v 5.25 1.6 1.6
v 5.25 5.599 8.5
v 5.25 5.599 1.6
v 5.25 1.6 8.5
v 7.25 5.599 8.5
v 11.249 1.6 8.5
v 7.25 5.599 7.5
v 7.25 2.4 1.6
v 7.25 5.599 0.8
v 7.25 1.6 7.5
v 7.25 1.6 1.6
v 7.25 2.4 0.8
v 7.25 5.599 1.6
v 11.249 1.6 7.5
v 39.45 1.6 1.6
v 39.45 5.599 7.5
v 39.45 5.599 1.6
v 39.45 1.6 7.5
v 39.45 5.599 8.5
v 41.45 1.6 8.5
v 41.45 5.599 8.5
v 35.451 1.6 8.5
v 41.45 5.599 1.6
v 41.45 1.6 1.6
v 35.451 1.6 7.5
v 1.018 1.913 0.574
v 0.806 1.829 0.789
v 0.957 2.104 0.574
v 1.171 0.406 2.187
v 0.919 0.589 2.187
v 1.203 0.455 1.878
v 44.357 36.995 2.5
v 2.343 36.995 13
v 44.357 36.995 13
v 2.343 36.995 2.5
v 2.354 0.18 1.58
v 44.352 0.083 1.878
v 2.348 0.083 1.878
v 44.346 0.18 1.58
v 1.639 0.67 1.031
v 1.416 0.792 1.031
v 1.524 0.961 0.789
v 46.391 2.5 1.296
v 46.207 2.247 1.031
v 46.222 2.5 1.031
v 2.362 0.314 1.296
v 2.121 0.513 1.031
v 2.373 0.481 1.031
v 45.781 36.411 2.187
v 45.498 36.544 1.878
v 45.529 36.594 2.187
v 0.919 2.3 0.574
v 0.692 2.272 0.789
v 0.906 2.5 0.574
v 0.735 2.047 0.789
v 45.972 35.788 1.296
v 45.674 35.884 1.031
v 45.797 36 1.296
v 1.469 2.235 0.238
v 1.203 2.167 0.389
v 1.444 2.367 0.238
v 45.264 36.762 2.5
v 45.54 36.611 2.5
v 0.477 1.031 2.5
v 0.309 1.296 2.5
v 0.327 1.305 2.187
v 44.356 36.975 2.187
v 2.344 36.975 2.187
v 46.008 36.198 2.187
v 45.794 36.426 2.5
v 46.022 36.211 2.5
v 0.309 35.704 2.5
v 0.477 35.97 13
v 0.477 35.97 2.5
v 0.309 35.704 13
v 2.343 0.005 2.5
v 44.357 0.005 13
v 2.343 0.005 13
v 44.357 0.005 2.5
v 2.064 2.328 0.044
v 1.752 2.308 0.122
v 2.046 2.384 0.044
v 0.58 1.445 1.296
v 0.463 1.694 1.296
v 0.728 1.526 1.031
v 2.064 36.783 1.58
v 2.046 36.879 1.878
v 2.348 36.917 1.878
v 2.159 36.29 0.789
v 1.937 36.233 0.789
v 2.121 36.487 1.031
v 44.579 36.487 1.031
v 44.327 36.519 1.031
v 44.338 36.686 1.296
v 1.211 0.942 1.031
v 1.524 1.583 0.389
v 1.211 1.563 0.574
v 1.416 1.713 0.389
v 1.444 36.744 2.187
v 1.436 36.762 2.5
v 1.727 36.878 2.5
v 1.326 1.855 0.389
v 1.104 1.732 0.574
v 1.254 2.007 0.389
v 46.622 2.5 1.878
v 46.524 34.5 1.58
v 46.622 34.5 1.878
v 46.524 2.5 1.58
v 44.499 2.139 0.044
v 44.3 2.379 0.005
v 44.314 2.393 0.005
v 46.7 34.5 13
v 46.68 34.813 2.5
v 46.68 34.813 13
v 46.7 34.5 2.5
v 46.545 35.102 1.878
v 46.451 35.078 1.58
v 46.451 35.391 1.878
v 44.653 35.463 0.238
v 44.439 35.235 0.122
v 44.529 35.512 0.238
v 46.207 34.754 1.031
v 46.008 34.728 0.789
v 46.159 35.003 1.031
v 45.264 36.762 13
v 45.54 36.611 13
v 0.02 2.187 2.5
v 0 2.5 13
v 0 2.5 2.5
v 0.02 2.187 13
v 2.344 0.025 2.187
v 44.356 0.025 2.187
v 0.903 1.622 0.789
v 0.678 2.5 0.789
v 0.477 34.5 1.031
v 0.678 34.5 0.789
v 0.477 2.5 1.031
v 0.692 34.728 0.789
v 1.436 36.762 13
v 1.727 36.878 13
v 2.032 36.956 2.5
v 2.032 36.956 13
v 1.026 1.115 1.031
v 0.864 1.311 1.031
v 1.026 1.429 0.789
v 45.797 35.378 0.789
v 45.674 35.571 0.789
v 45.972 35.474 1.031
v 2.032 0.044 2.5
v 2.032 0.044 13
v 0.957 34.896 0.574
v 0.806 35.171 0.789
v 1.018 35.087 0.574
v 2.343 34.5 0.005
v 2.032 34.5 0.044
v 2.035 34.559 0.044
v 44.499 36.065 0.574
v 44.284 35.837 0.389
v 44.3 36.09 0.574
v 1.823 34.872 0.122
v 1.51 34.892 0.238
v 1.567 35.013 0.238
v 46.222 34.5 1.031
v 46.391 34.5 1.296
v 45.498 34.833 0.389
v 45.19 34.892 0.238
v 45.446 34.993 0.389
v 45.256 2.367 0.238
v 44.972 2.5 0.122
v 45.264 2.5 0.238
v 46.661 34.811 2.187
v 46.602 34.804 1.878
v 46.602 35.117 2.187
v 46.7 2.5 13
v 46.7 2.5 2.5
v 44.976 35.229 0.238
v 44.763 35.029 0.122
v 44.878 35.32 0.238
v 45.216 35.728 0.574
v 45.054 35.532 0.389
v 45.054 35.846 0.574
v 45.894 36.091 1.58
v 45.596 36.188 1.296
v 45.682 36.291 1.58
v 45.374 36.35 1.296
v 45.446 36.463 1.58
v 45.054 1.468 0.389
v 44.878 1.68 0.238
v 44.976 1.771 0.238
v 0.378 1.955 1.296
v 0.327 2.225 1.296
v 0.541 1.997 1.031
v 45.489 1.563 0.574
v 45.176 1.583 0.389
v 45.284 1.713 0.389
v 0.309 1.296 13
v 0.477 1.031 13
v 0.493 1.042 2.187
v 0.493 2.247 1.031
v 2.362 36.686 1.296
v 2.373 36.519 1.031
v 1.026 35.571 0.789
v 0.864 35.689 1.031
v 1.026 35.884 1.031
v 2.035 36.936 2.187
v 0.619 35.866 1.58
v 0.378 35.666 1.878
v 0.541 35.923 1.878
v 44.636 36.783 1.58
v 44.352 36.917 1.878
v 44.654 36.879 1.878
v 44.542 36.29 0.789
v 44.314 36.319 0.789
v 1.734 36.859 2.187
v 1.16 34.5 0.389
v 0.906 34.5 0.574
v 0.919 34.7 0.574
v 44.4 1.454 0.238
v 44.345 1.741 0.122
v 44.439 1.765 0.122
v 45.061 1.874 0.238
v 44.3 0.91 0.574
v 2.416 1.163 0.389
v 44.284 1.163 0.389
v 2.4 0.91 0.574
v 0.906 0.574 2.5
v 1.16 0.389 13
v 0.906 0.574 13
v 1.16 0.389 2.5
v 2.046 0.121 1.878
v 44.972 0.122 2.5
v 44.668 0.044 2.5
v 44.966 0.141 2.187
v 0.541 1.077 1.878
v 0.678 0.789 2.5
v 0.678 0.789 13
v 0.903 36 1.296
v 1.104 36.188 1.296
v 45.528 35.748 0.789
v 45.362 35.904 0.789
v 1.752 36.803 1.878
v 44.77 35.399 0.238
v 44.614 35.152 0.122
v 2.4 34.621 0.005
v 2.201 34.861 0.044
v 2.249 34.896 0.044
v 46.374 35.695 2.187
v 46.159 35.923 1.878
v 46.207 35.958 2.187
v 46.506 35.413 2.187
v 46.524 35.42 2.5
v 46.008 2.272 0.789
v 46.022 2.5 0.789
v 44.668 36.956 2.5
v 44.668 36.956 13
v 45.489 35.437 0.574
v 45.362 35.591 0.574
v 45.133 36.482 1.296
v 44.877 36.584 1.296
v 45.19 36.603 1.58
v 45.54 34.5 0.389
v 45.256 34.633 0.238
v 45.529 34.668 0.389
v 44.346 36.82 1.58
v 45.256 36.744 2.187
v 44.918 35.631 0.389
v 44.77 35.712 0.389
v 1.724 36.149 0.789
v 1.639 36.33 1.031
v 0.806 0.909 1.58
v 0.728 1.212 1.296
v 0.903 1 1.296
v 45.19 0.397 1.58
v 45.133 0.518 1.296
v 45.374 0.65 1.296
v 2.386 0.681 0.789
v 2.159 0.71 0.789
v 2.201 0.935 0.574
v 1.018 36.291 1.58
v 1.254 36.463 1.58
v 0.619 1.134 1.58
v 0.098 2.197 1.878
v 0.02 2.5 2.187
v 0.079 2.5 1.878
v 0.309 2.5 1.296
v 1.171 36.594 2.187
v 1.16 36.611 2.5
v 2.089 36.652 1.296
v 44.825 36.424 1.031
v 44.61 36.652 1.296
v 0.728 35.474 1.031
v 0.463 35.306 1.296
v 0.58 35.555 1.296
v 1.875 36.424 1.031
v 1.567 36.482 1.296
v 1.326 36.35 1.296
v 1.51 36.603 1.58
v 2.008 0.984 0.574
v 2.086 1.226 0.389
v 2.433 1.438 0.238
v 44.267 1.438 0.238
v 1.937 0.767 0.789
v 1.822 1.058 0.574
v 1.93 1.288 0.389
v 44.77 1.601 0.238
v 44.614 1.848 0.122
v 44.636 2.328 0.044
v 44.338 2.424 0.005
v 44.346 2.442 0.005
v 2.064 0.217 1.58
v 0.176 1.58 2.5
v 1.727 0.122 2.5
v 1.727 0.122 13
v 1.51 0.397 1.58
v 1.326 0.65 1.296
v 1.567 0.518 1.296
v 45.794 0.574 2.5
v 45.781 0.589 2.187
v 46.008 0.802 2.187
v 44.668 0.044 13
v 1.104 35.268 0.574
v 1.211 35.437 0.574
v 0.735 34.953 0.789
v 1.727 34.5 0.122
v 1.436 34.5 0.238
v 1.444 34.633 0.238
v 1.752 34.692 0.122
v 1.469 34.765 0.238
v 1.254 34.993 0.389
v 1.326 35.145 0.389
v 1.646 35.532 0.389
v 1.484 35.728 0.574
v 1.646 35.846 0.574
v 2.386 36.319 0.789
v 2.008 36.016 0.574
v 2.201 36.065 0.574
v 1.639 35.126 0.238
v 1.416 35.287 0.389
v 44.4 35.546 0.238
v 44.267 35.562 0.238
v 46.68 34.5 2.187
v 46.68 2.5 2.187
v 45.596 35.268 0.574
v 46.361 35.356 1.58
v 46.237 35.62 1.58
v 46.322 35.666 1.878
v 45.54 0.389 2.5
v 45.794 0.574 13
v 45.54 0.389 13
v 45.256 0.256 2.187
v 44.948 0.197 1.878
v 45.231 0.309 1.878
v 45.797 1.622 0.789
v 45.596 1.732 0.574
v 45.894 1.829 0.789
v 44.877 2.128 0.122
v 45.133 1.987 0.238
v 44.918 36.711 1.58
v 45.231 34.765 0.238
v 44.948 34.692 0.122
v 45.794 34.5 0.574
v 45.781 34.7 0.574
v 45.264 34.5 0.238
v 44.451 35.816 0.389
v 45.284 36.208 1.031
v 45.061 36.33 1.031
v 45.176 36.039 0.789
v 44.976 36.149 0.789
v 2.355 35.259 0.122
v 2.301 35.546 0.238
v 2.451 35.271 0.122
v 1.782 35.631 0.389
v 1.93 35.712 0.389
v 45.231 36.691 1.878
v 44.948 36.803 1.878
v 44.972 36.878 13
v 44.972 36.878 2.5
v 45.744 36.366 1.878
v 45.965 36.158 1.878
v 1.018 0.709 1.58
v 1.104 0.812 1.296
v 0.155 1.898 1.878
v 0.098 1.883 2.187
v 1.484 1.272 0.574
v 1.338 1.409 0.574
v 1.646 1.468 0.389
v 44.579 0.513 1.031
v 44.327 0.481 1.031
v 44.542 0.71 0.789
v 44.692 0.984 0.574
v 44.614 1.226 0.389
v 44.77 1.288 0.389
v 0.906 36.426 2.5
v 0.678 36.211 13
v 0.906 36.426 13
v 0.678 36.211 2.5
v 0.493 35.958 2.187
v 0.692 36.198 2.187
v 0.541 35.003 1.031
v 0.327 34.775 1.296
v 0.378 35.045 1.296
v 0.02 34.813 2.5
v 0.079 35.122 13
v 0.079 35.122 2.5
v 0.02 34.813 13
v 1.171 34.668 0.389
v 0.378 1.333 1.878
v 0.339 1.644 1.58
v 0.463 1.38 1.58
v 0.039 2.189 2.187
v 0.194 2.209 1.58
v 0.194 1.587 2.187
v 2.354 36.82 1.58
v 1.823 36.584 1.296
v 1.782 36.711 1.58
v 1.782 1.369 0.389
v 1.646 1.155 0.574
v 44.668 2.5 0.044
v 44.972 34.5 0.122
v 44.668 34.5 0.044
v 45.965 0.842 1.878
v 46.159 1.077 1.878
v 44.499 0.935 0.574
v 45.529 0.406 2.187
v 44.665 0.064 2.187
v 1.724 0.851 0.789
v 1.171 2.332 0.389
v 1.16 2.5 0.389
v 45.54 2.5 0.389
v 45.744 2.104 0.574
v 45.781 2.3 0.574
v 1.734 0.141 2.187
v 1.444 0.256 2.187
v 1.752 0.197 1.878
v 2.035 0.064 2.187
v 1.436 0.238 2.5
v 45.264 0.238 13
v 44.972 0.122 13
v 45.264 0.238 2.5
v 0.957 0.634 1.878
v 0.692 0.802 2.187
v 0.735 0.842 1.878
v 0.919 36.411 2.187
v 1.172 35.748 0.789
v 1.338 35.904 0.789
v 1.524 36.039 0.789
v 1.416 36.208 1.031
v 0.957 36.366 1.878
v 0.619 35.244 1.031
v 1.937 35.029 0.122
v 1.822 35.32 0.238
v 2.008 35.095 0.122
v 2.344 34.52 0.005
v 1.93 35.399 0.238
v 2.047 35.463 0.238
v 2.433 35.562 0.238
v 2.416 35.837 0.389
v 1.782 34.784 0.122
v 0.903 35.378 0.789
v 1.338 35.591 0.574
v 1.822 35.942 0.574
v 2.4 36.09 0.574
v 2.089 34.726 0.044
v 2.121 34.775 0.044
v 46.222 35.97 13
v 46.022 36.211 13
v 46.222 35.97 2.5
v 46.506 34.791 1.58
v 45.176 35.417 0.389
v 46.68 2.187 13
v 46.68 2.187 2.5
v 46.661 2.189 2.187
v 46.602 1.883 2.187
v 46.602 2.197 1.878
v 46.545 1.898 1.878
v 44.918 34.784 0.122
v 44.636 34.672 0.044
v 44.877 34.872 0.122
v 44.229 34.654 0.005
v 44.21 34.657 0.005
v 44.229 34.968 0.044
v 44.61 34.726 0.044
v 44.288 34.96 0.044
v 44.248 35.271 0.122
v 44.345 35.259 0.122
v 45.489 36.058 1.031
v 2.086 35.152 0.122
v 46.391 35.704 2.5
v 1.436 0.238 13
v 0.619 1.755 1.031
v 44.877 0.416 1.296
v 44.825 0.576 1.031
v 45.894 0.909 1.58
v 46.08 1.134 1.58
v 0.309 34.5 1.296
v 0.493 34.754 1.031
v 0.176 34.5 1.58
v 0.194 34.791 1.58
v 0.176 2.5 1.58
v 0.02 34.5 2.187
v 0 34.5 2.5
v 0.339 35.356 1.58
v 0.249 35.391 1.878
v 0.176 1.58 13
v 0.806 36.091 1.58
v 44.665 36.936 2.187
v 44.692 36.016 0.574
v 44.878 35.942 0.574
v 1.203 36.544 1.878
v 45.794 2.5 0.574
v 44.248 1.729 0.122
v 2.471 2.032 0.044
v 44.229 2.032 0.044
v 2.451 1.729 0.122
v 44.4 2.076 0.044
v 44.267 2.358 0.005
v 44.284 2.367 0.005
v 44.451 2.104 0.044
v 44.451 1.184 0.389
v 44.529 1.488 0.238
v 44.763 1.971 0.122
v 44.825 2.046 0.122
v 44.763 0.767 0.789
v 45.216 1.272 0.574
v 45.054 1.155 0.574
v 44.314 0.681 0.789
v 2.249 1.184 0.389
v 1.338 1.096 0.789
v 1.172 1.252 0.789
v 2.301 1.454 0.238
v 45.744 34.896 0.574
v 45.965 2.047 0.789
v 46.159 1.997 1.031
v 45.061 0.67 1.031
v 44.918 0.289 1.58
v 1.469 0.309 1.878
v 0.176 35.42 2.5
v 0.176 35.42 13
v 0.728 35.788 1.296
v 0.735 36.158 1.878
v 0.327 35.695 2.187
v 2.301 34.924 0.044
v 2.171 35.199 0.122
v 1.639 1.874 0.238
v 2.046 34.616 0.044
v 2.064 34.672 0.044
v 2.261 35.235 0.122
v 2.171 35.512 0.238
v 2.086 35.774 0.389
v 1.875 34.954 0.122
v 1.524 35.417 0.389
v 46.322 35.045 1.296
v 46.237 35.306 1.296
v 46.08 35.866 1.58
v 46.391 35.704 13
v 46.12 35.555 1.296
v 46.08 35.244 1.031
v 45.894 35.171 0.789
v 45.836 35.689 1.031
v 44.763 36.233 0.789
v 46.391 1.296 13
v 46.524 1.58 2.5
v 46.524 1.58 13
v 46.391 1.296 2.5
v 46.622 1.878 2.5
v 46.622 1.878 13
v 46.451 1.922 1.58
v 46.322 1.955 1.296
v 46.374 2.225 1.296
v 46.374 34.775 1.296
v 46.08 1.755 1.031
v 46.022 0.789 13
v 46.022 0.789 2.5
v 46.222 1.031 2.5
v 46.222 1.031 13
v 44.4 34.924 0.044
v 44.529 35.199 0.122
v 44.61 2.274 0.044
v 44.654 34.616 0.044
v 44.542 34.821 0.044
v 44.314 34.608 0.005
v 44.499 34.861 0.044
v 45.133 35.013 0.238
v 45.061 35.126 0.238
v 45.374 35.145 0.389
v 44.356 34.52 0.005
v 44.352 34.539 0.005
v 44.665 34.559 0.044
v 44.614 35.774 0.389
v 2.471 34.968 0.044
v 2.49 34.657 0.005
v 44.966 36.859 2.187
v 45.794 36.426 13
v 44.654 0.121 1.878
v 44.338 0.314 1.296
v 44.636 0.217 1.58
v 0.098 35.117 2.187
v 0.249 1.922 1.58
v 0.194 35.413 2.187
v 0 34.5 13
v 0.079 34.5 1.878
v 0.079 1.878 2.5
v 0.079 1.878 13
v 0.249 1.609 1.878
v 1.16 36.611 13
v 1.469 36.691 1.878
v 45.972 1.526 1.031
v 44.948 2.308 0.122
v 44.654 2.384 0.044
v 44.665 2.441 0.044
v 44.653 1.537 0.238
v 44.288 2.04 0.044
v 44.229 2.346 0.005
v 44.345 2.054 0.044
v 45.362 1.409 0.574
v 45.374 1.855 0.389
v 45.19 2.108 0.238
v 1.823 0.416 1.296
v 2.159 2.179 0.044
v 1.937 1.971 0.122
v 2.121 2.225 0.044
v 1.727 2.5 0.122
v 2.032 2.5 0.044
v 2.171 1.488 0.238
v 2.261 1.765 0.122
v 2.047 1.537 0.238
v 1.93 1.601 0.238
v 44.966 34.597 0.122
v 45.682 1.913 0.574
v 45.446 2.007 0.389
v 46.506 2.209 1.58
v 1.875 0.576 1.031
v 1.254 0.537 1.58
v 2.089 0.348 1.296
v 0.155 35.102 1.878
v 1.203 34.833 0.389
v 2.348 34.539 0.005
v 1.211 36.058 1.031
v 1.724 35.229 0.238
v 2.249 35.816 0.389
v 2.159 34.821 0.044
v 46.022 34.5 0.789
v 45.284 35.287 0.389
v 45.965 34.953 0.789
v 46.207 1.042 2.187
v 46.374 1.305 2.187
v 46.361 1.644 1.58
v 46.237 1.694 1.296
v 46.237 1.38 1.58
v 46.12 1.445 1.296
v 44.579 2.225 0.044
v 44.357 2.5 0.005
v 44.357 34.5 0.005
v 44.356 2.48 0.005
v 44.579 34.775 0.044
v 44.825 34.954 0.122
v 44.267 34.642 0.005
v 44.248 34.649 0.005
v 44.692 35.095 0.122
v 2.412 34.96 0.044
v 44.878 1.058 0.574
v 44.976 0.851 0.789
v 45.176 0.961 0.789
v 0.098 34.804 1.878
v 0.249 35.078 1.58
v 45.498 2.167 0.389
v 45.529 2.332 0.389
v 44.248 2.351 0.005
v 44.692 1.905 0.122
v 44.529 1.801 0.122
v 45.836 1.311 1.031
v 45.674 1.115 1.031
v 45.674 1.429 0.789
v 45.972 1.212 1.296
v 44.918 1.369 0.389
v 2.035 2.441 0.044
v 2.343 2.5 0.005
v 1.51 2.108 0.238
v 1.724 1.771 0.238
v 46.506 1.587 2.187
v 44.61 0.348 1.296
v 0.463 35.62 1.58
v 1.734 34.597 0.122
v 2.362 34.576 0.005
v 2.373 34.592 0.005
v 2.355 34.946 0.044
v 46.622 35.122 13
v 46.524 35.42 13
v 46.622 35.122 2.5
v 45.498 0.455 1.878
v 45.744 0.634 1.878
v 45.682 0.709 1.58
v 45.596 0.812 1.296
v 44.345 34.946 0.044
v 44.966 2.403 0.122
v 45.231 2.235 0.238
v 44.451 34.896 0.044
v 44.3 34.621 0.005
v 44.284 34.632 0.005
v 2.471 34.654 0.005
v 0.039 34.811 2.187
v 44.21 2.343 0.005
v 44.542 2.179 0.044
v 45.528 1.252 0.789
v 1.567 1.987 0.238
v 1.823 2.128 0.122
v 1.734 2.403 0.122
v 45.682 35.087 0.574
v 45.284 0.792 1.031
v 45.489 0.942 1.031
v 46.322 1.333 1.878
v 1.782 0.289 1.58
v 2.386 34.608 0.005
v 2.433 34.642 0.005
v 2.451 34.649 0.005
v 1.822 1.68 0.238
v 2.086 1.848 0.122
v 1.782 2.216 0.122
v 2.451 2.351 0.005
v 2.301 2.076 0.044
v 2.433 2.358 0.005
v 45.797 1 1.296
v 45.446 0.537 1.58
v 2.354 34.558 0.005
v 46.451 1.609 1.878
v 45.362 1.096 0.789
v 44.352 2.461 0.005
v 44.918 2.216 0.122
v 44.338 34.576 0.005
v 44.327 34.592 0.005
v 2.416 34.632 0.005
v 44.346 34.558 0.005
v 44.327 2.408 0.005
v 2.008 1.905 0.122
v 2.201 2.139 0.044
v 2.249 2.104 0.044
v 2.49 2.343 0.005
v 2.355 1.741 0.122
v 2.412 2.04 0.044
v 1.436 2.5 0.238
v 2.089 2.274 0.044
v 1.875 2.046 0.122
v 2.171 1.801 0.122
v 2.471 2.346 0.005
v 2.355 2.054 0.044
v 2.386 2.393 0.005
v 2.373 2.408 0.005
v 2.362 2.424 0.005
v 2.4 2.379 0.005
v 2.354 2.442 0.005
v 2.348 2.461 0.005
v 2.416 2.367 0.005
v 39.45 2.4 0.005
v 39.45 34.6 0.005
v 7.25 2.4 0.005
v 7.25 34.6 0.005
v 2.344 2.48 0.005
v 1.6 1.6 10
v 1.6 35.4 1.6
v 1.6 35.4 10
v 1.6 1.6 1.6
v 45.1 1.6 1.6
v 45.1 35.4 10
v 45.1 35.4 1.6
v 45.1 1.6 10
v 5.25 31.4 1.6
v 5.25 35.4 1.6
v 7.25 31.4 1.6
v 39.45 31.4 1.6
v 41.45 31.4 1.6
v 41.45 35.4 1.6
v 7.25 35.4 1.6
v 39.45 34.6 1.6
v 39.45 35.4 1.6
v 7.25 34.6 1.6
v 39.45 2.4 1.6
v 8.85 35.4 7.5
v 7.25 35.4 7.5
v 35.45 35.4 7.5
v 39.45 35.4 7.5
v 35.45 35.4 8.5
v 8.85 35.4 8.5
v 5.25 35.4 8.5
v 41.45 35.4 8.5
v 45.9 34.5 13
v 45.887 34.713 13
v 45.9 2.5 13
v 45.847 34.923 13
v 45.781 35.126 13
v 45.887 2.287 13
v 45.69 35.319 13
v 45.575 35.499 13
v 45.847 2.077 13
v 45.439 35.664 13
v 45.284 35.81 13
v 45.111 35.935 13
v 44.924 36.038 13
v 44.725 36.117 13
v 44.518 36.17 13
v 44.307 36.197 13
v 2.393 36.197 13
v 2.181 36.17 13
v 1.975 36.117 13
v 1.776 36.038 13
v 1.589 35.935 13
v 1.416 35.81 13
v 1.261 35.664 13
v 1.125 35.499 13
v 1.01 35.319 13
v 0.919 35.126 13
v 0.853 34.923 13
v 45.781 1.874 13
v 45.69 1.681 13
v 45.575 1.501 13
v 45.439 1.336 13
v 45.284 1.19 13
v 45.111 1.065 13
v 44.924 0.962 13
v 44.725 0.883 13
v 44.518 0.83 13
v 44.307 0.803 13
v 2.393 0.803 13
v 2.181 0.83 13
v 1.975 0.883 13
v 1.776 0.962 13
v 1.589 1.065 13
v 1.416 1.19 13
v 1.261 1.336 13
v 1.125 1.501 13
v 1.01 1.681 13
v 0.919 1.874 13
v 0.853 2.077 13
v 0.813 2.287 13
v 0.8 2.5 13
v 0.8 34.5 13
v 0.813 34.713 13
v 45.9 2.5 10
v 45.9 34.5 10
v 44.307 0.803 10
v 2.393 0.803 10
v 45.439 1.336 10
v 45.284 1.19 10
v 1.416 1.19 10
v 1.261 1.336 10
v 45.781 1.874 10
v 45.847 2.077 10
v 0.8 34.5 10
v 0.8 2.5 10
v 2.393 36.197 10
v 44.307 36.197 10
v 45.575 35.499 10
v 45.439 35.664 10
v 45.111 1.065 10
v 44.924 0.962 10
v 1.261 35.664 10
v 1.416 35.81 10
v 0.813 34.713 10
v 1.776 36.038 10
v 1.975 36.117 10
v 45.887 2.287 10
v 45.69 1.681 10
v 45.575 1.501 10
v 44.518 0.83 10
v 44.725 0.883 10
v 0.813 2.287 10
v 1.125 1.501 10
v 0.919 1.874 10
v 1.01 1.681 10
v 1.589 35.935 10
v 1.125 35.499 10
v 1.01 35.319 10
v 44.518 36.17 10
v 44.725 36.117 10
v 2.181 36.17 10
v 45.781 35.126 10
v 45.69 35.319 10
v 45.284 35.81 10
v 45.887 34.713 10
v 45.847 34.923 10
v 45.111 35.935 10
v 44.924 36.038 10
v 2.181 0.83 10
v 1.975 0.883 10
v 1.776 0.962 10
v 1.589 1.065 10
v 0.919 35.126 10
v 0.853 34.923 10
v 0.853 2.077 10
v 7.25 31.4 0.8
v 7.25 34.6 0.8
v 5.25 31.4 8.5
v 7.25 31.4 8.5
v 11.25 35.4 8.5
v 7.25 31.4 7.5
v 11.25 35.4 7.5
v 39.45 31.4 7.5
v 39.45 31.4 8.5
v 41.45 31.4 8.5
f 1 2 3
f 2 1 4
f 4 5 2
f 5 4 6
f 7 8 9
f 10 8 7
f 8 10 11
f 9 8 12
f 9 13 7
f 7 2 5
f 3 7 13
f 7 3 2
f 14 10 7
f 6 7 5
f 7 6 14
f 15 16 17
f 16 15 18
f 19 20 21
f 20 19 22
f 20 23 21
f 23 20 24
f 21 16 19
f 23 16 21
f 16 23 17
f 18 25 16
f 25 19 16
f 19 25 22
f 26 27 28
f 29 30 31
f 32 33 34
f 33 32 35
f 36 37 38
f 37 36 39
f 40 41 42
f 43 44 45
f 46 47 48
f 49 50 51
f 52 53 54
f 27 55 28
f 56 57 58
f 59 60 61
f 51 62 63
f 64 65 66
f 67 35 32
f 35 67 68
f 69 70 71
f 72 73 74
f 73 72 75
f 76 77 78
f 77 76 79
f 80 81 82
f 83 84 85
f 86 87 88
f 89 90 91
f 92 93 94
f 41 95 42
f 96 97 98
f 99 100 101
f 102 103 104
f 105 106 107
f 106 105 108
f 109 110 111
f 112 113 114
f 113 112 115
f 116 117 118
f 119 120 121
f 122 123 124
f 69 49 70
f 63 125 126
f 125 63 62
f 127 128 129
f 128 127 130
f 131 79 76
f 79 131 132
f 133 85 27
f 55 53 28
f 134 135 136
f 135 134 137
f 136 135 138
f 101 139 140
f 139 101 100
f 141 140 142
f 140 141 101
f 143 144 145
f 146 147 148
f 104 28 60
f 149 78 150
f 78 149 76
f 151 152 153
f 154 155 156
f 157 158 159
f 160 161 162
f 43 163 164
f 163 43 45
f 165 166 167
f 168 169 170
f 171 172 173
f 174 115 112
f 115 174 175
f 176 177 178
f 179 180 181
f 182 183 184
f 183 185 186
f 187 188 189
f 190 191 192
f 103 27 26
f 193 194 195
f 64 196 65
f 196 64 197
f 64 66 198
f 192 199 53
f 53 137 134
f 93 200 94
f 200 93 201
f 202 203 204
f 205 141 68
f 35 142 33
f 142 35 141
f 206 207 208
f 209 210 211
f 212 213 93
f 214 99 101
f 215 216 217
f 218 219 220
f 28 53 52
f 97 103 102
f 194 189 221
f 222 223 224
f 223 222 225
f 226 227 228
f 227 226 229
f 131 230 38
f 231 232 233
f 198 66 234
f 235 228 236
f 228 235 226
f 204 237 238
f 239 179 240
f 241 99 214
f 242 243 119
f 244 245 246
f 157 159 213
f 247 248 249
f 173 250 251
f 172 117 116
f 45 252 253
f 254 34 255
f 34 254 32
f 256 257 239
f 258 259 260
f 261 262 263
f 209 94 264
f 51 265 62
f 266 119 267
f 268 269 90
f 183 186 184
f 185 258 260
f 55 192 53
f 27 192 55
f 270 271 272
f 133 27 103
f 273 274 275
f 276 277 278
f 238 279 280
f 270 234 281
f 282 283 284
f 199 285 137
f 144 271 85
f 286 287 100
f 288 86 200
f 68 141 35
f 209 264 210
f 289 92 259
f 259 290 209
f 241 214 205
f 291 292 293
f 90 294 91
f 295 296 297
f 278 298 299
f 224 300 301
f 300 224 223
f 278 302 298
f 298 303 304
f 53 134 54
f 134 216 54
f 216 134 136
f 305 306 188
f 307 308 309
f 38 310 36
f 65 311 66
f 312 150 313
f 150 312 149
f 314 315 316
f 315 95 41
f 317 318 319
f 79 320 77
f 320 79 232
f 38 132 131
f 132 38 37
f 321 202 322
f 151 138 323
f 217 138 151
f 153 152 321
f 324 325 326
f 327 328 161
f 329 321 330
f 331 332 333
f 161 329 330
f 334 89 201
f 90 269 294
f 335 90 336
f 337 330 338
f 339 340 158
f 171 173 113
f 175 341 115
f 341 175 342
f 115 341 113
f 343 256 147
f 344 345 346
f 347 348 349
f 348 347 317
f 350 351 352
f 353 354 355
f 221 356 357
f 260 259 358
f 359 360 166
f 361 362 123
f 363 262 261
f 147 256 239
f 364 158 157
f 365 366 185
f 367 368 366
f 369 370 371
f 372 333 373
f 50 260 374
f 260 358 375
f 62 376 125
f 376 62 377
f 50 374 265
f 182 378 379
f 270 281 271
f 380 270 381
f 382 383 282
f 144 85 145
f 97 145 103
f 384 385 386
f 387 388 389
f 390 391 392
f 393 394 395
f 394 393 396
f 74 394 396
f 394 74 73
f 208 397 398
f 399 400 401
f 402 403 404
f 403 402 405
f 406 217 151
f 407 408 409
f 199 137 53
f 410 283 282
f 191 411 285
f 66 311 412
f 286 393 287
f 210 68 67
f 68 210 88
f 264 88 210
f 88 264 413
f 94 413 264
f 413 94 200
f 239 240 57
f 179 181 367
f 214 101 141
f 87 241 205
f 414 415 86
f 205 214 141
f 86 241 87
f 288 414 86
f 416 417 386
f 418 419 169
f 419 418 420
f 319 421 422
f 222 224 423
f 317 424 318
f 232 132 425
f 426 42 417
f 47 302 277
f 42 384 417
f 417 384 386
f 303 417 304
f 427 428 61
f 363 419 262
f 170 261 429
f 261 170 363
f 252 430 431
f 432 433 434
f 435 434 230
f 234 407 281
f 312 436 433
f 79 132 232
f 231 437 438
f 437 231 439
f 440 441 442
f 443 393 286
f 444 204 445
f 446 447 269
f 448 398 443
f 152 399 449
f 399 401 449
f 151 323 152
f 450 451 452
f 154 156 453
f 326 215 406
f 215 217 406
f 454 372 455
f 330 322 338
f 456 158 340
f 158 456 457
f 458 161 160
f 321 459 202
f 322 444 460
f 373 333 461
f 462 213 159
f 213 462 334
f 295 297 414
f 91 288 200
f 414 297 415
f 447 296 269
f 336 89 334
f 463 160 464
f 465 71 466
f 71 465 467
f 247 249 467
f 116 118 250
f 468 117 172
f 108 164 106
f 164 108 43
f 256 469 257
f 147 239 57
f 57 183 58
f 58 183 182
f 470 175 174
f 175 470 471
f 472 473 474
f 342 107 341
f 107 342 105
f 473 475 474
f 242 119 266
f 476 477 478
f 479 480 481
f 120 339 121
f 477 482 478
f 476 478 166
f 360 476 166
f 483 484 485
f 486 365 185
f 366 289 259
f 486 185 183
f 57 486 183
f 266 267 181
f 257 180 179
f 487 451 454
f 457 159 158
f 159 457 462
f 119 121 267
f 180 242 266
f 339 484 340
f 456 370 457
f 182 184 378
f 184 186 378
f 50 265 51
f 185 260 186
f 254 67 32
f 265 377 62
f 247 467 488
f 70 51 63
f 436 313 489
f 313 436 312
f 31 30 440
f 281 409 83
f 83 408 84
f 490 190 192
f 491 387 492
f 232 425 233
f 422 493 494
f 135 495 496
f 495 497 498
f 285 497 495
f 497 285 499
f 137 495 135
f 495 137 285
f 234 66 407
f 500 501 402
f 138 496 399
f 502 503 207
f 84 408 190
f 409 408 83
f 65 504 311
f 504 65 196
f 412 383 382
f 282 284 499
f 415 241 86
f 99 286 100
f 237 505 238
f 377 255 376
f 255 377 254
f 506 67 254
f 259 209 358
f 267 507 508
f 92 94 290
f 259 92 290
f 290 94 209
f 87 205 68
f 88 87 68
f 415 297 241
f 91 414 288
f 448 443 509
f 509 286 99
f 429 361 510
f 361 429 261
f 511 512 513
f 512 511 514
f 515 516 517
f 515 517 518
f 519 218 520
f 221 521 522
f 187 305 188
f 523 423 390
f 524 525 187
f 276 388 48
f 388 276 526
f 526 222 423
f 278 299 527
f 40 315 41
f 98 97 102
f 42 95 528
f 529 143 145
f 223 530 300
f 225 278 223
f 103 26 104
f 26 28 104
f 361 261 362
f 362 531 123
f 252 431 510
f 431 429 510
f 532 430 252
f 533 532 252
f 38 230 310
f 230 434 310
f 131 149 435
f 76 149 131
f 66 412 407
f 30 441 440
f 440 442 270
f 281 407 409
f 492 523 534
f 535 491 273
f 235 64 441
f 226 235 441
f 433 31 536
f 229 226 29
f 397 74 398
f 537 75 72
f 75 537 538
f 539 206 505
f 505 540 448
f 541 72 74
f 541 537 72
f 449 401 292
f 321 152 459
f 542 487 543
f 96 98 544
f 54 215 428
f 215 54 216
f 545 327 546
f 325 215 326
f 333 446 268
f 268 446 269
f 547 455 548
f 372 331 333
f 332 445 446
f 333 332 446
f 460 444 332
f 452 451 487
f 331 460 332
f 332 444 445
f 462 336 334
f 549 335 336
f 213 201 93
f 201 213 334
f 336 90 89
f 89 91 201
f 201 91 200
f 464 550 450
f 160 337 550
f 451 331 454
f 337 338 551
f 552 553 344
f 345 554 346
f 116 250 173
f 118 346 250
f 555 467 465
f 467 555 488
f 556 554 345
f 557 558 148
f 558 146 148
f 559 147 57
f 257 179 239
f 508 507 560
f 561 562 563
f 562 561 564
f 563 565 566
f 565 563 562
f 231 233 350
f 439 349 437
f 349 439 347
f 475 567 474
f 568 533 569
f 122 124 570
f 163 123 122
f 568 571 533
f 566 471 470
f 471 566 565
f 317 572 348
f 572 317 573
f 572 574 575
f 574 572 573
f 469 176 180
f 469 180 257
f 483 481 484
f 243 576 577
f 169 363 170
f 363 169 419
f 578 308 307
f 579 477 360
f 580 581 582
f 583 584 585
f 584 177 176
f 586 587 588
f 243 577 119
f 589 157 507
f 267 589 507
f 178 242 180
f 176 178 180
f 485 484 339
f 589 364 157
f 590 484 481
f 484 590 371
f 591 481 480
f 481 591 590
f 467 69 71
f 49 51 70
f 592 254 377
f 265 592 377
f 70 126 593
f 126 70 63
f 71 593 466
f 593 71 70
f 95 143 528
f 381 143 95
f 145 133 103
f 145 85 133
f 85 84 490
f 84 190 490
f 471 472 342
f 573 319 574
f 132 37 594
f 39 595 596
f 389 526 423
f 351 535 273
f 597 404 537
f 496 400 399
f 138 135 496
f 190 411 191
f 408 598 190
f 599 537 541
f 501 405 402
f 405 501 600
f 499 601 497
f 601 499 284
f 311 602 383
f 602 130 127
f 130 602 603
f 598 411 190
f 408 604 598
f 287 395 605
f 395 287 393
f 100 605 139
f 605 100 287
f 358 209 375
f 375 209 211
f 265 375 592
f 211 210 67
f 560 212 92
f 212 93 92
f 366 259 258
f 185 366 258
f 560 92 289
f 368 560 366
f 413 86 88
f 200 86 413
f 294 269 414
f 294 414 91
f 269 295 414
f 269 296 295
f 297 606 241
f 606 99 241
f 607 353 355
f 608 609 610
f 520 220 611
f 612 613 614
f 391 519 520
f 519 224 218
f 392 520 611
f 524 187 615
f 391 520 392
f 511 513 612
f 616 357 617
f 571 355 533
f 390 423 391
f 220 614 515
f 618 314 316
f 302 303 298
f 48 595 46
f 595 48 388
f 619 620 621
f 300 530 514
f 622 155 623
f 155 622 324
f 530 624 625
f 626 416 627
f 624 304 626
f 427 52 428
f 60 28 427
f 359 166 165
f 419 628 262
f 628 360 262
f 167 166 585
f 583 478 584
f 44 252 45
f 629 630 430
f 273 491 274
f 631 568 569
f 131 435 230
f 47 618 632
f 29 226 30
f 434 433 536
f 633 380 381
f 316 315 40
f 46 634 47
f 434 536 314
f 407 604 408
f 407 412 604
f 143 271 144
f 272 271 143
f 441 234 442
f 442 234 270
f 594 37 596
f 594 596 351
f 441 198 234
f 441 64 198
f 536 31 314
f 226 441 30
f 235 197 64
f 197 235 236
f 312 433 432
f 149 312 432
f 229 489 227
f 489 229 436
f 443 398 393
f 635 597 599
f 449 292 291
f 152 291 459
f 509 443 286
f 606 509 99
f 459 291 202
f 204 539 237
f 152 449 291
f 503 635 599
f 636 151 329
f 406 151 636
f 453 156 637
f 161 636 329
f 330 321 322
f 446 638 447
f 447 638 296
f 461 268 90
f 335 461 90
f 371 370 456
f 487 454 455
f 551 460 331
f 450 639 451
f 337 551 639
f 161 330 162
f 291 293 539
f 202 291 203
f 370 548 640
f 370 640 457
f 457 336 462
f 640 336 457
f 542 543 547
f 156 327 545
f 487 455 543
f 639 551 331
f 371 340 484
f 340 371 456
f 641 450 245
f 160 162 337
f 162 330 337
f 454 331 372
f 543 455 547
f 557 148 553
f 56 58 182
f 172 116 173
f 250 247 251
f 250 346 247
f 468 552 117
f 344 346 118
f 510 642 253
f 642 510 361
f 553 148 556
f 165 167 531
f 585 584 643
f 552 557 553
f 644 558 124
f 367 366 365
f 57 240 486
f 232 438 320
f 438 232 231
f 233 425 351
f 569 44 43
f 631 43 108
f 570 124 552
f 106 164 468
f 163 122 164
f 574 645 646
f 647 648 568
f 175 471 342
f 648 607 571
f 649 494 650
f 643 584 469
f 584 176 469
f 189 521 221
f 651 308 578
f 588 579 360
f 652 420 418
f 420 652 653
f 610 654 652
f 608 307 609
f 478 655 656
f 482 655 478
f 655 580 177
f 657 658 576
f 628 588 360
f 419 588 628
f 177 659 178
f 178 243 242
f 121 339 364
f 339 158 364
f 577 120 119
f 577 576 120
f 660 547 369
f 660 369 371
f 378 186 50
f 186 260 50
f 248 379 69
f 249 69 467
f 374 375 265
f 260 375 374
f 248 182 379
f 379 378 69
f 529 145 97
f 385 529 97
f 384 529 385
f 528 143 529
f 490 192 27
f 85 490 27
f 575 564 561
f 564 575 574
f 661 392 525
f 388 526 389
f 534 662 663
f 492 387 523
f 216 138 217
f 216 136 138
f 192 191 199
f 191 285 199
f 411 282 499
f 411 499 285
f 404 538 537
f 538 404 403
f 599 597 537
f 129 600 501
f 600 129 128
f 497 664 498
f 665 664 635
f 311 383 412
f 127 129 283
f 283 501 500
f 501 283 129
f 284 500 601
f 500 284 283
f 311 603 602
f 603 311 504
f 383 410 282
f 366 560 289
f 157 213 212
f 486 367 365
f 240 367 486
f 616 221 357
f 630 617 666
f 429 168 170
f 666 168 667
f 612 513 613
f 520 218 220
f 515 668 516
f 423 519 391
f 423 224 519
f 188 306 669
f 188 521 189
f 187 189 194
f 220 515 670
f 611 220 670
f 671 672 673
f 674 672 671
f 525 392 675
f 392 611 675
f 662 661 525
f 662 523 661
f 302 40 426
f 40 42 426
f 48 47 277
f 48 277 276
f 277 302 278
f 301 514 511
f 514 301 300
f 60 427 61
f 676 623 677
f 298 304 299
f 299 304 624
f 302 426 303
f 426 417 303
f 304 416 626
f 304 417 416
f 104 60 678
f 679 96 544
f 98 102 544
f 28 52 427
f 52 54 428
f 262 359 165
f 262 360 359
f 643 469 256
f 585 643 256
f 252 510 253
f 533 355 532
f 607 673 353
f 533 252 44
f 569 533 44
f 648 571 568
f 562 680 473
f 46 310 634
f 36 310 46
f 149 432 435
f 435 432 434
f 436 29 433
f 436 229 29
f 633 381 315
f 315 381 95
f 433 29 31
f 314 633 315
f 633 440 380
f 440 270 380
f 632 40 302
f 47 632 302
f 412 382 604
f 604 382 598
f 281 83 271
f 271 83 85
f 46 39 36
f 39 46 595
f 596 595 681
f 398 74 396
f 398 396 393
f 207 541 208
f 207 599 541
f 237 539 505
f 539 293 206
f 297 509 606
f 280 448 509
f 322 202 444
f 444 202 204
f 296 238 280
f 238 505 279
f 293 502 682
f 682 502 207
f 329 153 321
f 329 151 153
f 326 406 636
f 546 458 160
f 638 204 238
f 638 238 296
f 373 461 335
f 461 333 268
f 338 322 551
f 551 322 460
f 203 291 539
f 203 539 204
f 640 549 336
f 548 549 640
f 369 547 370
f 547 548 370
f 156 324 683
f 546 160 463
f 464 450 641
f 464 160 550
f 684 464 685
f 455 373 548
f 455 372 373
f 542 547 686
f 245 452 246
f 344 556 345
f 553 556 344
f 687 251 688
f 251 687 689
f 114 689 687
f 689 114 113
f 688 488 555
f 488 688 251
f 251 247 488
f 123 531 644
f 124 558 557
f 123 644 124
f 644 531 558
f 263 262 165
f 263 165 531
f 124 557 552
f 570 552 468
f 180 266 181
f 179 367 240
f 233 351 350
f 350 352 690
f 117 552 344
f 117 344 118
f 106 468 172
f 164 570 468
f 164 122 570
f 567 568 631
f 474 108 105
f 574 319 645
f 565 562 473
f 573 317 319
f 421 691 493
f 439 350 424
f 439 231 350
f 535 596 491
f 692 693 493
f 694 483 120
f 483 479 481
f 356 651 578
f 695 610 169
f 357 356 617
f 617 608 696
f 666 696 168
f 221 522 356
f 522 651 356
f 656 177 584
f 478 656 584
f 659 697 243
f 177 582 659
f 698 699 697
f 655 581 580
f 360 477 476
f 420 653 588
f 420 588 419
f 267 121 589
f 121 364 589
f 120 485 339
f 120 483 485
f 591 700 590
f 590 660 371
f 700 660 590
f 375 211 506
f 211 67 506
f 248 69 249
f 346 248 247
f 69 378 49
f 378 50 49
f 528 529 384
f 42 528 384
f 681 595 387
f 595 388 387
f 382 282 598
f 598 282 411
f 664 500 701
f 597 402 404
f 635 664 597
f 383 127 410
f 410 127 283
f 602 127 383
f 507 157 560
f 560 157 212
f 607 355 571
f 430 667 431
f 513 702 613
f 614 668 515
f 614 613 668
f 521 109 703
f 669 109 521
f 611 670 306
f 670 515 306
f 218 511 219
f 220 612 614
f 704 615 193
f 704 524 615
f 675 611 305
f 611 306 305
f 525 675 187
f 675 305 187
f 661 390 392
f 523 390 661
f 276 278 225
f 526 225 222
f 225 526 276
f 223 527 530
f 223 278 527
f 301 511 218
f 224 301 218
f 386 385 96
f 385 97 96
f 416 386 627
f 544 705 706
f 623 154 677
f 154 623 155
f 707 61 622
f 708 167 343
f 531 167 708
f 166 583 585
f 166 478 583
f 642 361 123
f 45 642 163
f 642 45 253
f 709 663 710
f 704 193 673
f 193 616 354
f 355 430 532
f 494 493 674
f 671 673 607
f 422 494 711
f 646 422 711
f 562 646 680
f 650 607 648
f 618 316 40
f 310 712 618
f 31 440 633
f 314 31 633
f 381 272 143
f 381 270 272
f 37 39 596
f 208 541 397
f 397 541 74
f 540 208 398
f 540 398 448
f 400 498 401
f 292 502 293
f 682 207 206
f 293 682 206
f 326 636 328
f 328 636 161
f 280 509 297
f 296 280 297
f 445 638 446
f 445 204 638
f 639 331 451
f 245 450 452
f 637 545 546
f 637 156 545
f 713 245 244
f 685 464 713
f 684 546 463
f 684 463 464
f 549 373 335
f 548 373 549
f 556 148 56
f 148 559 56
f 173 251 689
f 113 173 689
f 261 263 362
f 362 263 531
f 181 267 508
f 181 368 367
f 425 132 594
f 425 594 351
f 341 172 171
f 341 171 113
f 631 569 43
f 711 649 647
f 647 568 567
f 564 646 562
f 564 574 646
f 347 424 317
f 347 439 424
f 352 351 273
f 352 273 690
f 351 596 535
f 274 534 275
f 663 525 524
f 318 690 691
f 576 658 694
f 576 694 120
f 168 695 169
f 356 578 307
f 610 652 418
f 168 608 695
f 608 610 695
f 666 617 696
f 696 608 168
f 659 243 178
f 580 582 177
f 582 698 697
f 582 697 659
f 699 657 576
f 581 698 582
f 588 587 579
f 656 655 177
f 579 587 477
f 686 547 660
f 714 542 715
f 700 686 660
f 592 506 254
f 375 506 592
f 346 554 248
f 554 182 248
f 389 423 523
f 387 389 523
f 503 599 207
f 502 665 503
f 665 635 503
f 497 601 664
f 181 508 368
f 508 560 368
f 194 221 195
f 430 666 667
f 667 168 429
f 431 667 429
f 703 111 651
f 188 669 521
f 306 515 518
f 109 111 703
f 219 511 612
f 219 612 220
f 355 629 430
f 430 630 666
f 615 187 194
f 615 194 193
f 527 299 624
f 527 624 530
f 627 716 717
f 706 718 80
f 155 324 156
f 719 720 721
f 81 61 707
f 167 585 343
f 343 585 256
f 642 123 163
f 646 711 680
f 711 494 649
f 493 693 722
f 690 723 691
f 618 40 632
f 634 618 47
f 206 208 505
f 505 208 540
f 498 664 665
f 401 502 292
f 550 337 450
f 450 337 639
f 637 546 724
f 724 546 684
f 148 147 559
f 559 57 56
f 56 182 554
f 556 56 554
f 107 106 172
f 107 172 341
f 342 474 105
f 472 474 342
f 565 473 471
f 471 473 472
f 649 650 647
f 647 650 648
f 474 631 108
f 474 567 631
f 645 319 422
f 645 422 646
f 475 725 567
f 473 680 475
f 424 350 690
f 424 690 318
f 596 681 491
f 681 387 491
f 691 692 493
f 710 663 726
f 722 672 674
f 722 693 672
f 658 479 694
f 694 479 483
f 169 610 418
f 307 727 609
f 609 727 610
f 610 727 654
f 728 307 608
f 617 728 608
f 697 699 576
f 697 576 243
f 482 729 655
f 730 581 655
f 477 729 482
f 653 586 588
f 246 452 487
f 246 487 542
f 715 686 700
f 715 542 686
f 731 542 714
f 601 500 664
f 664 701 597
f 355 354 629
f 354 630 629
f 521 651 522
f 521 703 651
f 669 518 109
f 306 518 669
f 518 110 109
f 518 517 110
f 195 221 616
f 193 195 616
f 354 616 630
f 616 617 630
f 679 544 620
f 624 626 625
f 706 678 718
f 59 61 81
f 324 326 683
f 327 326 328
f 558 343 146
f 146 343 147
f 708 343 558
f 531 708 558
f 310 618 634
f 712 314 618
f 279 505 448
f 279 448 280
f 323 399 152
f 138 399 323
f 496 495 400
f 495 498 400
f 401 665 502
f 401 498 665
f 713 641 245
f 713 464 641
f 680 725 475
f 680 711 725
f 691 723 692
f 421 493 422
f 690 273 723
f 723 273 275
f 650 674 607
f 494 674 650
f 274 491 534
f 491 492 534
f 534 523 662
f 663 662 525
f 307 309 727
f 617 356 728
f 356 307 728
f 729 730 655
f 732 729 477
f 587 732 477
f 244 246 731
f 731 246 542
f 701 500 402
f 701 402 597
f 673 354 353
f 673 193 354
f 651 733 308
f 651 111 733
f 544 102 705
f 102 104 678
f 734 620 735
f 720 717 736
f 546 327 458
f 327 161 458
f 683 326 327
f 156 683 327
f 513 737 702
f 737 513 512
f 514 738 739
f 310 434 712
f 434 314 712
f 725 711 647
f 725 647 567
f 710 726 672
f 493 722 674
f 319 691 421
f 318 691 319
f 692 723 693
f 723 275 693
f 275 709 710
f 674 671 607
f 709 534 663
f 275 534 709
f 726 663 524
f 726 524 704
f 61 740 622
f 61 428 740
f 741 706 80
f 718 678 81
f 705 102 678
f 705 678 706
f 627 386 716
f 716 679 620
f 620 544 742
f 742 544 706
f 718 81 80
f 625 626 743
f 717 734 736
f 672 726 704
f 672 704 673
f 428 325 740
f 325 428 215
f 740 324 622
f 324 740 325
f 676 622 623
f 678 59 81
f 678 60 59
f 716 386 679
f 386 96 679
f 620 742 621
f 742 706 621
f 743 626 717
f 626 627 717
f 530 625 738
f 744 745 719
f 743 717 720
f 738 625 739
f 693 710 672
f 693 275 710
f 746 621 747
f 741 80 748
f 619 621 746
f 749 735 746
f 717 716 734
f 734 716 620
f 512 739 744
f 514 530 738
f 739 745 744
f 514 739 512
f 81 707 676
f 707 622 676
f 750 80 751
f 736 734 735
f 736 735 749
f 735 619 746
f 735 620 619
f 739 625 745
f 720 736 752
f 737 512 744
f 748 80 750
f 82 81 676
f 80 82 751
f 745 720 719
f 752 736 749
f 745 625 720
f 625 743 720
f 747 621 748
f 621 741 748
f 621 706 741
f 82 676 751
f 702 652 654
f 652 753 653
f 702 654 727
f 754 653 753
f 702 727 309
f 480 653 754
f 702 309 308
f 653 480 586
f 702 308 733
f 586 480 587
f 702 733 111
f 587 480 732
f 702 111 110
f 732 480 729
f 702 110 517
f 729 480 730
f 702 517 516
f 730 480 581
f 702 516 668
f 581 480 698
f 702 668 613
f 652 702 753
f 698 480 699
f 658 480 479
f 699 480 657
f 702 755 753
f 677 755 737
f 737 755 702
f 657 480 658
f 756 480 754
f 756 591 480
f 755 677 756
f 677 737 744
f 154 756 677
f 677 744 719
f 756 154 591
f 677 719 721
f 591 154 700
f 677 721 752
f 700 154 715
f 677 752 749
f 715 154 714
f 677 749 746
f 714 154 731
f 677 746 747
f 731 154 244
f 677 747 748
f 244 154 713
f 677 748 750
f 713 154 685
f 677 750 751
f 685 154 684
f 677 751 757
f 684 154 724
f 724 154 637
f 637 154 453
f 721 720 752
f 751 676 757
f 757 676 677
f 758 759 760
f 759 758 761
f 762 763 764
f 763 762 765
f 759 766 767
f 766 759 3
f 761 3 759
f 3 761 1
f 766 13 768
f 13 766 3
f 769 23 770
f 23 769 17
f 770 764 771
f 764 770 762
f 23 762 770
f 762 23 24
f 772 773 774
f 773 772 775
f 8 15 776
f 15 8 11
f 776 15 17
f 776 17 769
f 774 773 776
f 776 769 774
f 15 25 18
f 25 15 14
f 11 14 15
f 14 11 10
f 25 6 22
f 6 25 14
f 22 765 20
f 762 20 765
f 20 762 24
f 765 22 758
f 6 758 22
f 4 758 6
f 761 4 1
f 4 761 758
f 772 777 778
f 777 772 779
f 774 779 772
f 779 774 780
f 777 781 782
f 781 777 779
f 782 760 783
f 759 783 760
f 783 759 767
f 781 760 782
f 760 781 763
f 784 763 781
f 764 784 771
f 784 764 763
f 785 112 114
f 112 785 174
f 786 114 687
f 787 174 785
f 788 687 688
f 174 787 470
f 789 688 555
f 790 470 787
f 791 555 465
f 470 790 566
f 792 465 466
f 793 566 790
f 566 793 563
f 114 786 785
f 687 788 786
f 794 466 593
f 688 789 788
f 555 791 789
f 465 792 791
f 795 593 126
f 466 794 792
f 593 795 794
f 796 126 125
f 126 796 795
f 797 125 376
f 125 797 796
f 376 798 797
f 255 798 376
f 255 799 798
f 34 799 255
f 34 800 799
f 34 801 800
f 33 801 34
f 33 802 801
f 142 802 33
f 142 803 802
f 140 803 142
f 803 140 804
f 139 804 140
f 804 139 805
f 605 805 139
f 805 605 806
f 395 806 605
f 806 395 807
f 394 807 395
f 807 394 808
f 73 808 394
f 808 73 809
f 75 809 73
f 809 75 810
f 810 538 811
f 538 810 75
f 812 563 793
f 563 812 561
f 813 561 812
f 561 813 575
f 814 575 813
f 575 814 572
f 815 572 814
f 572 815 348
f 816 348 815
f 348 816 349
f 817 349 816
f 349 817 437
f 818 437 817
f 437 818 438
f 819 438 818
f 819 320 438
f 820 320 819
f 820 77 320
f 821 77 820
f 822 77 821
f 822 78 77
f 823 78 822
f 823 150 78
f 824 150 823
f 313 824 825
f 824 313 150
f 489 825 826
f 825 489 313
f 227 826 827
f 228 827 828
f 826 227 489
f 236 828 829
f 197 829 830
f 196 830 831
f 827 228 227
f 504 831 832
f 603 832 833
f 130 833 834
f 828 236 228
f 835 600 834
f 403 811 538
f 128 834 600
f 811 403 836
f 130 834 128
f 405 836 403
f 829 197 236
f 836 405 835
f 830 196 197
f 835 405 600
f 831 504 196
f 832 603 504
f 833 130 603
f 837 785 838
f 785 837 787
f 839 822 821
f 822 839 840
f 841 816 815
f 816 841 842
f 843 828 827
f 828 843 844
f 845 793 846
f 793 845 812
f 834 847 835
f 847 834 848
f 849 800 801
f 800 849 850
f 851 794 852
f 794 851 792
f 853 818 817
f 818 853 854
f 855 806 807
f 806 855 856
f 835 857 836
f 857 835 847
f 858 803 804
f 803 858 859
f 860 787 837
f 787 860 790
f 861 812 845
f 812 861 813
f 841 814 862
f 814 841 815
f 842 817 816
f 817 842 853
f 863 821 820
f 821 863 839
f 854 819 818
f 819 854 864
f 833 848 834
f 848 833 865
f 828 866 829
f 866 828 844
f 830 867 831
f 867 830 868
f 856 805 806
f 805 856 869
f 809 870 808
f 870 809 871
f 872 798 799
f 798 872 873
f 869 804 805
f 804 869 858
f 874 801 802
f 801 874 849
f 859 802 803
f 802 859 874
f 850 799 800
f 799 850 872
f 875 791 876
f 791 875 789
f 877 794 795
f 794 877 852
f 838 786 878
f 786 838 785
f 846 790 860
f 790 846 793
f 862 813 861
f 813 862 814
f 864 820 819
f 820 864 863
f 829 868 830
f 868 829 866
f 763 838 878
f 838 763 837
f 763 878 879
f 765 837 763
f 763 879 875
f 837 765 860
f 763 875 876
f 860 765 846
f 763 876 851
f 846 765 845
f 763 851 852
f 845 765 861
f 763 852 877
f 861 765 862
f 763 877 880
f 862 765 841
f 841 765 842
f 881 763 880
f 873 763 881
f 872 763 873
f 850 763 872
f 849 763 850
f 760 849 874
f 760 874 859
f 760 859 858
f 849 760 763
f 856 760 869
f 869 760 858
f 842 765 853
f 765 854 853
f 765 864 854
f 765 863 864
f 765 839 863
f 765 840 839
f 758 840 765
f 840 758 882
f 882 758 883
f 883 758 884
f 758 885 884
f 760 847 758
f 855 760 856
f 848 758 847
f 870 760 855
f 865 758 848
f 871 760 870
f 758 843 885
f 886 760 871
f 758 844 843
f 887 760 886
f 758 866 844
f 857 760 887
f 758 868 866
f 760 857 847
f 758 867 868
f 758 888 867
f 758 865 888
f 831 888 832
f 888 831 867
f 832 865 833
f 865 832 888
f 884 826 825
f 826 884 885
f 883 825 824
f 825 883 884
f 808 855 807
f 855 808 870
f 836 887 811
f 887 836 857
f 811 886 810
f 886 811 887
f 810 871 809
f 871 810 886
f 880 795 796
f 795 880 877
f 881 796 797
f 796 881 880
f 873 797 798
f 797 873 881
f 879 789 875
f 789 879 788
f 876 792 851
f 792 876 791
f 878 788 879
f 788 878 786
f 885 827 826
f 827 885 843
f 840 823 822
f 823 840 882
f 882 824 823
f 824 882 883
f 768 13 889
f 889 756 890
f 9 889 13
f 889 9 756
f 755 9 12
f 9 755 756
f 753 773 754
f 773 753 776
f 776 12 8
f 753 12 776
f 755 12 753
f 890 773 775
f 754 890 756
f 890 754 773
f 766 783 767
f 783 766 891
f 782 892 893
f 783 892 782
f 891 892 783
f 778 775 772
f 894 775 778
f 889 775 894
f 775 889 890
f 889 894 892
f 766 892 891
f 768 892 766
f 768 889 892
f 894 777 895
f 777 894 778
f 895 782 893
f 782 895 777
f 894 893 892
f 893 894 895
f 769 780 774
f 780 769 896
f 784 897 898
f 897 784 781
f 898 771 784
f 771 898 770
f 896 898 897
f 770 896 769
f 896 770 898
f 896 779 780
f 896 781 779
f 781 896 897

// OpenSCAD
//
//  LedMatrix
//  part of Let's make series
//
//  The Cave, 2017
//  https://thecave.cz
//
//  Licensed under MIT License (see LICENSE file for details)
//

$innerX = 43.5;
$innerY = 33.8;
$outerZ = 13;
$disp = 32.2;
$dispZ = 7.7;
$wall = 1.6;
$outerDia = 5;
$dentZ = 3;
$holder = 2;

difference() {
    translate([$outerDia/2,$outerDia/2,$outerDia/2]) minkowski() {
        sphere(d=$outerDia,$fn=50);
        cube([$innerX+$wall*2-$outerDia,$innerY+$wall*2-$outerDia,$outerZ+$outerDia*2]);
    }
    translate([$wall,$wall,$wall]) cube([$innerX,$innerY,$outerZ*2]);
    translate([-1,-1,$outerZ]) cube([$innerX*2,$innerY*2,$outerZ*2]);
    translate([$wall/2+($outerDia-$wall)/2,$wall/2+($outerDia-$wall)/2,$outerZ-$dentZ]) minkowski() {
        cube([$innerX+$wall-($outerDia-$wall),$innerY+$wall-($outerDia-$wall),$outerZ]);
        cylinder(d=$outerDia-$wall,h=$outerZ,$fn=50);
    }
    translate([$wall+($innerX-$disp)/2,$wall+($innerY-$disp)/2,-1]) cube([$disp,$disp,$wall*2]);
    

}

translate([($innerX-$disp)/2-($holder-$wall),$wall-0.001,$wall/2]) {
    cube([$holder,$holder*2,$dispZ]);
    translate([$holder,0,$dispZ-$holder/2]) polyhedron(points=[[0,0,0],[$holder*2,0,0],[0,$holder*2,0],[0,0,$holder/2],[$holder*2,0,$holder/2],[0,$holder*2,$holder/2]], faces=[[0,1,2],[0,3,1],[3,4,1],[0,2,5],[3,0,5],[3,5,4],[1,4,5],[1,5,2]]);
}

translate([($innerX-$disp)/2-($holder-$wall),$innerY+$wall-$holder*2,$wall/2]) {
cube([$holder,$holder*2,$dispZ]);
    translate([$holder,$holder*2,$dispZ-$holder/2]) rotate([0,0,270]) polyhedron(points=[[0,0,0],[$holder*2,0,0],[0,$holder*2,0],[0,0,$holder/2],[$holder*2,0,$holder/2],[0,$holder*2,$holder/2]], faces=[[0,1,2],[0,3,1],[3,4,1],[0,2,5],[3,0,5],[3,5,4],[1,4,5],[1,5,2]]);

}
translate([$innerX+$wall-($innerX-$disp)/2,$wall-0.001,$wall/2]) {
    cube([$holder,$holder*2,$dispZ]);
    translate([0,0,$dispZ-$holder/2]) rotate([0,0,90]) polyhedron(points=[[0,0,0],[$holder*2,0,0],[0,$holder*2,0],[0,0,$holder/2],[$holder*2,0,$holder/2],[0,$holder*2,$holder/2]], faces=[[0,1,2],[0,3,1],[3,4,1],[0,2,5],[3,0,5],[3,5,4],[1,4,5],[1,5,2]]);
}
translate([$innerX+$wall-($innerX-$disp)/2,$innerY+$wall-$holder*2,$wall/2]) {
    cube([$holder,$holder*2,$dispZ]);
    translate([0,$holder*2,$dispZ-$holder/2]) rotate([0,0,180]) polyhedron(points=[[0,0,0],[$holder*2,0,0],[0,$holder*2,0],[0,0,$holder/2],[$holder*2,0,$holder/2],[0,$holder*2,$holder/2]], faces=[[0,1,2],[0,3,1],[3,4,1],[0,2,5],[3,0,5],[3,5,4],[1,4,5],[1,5,2]]);
}
